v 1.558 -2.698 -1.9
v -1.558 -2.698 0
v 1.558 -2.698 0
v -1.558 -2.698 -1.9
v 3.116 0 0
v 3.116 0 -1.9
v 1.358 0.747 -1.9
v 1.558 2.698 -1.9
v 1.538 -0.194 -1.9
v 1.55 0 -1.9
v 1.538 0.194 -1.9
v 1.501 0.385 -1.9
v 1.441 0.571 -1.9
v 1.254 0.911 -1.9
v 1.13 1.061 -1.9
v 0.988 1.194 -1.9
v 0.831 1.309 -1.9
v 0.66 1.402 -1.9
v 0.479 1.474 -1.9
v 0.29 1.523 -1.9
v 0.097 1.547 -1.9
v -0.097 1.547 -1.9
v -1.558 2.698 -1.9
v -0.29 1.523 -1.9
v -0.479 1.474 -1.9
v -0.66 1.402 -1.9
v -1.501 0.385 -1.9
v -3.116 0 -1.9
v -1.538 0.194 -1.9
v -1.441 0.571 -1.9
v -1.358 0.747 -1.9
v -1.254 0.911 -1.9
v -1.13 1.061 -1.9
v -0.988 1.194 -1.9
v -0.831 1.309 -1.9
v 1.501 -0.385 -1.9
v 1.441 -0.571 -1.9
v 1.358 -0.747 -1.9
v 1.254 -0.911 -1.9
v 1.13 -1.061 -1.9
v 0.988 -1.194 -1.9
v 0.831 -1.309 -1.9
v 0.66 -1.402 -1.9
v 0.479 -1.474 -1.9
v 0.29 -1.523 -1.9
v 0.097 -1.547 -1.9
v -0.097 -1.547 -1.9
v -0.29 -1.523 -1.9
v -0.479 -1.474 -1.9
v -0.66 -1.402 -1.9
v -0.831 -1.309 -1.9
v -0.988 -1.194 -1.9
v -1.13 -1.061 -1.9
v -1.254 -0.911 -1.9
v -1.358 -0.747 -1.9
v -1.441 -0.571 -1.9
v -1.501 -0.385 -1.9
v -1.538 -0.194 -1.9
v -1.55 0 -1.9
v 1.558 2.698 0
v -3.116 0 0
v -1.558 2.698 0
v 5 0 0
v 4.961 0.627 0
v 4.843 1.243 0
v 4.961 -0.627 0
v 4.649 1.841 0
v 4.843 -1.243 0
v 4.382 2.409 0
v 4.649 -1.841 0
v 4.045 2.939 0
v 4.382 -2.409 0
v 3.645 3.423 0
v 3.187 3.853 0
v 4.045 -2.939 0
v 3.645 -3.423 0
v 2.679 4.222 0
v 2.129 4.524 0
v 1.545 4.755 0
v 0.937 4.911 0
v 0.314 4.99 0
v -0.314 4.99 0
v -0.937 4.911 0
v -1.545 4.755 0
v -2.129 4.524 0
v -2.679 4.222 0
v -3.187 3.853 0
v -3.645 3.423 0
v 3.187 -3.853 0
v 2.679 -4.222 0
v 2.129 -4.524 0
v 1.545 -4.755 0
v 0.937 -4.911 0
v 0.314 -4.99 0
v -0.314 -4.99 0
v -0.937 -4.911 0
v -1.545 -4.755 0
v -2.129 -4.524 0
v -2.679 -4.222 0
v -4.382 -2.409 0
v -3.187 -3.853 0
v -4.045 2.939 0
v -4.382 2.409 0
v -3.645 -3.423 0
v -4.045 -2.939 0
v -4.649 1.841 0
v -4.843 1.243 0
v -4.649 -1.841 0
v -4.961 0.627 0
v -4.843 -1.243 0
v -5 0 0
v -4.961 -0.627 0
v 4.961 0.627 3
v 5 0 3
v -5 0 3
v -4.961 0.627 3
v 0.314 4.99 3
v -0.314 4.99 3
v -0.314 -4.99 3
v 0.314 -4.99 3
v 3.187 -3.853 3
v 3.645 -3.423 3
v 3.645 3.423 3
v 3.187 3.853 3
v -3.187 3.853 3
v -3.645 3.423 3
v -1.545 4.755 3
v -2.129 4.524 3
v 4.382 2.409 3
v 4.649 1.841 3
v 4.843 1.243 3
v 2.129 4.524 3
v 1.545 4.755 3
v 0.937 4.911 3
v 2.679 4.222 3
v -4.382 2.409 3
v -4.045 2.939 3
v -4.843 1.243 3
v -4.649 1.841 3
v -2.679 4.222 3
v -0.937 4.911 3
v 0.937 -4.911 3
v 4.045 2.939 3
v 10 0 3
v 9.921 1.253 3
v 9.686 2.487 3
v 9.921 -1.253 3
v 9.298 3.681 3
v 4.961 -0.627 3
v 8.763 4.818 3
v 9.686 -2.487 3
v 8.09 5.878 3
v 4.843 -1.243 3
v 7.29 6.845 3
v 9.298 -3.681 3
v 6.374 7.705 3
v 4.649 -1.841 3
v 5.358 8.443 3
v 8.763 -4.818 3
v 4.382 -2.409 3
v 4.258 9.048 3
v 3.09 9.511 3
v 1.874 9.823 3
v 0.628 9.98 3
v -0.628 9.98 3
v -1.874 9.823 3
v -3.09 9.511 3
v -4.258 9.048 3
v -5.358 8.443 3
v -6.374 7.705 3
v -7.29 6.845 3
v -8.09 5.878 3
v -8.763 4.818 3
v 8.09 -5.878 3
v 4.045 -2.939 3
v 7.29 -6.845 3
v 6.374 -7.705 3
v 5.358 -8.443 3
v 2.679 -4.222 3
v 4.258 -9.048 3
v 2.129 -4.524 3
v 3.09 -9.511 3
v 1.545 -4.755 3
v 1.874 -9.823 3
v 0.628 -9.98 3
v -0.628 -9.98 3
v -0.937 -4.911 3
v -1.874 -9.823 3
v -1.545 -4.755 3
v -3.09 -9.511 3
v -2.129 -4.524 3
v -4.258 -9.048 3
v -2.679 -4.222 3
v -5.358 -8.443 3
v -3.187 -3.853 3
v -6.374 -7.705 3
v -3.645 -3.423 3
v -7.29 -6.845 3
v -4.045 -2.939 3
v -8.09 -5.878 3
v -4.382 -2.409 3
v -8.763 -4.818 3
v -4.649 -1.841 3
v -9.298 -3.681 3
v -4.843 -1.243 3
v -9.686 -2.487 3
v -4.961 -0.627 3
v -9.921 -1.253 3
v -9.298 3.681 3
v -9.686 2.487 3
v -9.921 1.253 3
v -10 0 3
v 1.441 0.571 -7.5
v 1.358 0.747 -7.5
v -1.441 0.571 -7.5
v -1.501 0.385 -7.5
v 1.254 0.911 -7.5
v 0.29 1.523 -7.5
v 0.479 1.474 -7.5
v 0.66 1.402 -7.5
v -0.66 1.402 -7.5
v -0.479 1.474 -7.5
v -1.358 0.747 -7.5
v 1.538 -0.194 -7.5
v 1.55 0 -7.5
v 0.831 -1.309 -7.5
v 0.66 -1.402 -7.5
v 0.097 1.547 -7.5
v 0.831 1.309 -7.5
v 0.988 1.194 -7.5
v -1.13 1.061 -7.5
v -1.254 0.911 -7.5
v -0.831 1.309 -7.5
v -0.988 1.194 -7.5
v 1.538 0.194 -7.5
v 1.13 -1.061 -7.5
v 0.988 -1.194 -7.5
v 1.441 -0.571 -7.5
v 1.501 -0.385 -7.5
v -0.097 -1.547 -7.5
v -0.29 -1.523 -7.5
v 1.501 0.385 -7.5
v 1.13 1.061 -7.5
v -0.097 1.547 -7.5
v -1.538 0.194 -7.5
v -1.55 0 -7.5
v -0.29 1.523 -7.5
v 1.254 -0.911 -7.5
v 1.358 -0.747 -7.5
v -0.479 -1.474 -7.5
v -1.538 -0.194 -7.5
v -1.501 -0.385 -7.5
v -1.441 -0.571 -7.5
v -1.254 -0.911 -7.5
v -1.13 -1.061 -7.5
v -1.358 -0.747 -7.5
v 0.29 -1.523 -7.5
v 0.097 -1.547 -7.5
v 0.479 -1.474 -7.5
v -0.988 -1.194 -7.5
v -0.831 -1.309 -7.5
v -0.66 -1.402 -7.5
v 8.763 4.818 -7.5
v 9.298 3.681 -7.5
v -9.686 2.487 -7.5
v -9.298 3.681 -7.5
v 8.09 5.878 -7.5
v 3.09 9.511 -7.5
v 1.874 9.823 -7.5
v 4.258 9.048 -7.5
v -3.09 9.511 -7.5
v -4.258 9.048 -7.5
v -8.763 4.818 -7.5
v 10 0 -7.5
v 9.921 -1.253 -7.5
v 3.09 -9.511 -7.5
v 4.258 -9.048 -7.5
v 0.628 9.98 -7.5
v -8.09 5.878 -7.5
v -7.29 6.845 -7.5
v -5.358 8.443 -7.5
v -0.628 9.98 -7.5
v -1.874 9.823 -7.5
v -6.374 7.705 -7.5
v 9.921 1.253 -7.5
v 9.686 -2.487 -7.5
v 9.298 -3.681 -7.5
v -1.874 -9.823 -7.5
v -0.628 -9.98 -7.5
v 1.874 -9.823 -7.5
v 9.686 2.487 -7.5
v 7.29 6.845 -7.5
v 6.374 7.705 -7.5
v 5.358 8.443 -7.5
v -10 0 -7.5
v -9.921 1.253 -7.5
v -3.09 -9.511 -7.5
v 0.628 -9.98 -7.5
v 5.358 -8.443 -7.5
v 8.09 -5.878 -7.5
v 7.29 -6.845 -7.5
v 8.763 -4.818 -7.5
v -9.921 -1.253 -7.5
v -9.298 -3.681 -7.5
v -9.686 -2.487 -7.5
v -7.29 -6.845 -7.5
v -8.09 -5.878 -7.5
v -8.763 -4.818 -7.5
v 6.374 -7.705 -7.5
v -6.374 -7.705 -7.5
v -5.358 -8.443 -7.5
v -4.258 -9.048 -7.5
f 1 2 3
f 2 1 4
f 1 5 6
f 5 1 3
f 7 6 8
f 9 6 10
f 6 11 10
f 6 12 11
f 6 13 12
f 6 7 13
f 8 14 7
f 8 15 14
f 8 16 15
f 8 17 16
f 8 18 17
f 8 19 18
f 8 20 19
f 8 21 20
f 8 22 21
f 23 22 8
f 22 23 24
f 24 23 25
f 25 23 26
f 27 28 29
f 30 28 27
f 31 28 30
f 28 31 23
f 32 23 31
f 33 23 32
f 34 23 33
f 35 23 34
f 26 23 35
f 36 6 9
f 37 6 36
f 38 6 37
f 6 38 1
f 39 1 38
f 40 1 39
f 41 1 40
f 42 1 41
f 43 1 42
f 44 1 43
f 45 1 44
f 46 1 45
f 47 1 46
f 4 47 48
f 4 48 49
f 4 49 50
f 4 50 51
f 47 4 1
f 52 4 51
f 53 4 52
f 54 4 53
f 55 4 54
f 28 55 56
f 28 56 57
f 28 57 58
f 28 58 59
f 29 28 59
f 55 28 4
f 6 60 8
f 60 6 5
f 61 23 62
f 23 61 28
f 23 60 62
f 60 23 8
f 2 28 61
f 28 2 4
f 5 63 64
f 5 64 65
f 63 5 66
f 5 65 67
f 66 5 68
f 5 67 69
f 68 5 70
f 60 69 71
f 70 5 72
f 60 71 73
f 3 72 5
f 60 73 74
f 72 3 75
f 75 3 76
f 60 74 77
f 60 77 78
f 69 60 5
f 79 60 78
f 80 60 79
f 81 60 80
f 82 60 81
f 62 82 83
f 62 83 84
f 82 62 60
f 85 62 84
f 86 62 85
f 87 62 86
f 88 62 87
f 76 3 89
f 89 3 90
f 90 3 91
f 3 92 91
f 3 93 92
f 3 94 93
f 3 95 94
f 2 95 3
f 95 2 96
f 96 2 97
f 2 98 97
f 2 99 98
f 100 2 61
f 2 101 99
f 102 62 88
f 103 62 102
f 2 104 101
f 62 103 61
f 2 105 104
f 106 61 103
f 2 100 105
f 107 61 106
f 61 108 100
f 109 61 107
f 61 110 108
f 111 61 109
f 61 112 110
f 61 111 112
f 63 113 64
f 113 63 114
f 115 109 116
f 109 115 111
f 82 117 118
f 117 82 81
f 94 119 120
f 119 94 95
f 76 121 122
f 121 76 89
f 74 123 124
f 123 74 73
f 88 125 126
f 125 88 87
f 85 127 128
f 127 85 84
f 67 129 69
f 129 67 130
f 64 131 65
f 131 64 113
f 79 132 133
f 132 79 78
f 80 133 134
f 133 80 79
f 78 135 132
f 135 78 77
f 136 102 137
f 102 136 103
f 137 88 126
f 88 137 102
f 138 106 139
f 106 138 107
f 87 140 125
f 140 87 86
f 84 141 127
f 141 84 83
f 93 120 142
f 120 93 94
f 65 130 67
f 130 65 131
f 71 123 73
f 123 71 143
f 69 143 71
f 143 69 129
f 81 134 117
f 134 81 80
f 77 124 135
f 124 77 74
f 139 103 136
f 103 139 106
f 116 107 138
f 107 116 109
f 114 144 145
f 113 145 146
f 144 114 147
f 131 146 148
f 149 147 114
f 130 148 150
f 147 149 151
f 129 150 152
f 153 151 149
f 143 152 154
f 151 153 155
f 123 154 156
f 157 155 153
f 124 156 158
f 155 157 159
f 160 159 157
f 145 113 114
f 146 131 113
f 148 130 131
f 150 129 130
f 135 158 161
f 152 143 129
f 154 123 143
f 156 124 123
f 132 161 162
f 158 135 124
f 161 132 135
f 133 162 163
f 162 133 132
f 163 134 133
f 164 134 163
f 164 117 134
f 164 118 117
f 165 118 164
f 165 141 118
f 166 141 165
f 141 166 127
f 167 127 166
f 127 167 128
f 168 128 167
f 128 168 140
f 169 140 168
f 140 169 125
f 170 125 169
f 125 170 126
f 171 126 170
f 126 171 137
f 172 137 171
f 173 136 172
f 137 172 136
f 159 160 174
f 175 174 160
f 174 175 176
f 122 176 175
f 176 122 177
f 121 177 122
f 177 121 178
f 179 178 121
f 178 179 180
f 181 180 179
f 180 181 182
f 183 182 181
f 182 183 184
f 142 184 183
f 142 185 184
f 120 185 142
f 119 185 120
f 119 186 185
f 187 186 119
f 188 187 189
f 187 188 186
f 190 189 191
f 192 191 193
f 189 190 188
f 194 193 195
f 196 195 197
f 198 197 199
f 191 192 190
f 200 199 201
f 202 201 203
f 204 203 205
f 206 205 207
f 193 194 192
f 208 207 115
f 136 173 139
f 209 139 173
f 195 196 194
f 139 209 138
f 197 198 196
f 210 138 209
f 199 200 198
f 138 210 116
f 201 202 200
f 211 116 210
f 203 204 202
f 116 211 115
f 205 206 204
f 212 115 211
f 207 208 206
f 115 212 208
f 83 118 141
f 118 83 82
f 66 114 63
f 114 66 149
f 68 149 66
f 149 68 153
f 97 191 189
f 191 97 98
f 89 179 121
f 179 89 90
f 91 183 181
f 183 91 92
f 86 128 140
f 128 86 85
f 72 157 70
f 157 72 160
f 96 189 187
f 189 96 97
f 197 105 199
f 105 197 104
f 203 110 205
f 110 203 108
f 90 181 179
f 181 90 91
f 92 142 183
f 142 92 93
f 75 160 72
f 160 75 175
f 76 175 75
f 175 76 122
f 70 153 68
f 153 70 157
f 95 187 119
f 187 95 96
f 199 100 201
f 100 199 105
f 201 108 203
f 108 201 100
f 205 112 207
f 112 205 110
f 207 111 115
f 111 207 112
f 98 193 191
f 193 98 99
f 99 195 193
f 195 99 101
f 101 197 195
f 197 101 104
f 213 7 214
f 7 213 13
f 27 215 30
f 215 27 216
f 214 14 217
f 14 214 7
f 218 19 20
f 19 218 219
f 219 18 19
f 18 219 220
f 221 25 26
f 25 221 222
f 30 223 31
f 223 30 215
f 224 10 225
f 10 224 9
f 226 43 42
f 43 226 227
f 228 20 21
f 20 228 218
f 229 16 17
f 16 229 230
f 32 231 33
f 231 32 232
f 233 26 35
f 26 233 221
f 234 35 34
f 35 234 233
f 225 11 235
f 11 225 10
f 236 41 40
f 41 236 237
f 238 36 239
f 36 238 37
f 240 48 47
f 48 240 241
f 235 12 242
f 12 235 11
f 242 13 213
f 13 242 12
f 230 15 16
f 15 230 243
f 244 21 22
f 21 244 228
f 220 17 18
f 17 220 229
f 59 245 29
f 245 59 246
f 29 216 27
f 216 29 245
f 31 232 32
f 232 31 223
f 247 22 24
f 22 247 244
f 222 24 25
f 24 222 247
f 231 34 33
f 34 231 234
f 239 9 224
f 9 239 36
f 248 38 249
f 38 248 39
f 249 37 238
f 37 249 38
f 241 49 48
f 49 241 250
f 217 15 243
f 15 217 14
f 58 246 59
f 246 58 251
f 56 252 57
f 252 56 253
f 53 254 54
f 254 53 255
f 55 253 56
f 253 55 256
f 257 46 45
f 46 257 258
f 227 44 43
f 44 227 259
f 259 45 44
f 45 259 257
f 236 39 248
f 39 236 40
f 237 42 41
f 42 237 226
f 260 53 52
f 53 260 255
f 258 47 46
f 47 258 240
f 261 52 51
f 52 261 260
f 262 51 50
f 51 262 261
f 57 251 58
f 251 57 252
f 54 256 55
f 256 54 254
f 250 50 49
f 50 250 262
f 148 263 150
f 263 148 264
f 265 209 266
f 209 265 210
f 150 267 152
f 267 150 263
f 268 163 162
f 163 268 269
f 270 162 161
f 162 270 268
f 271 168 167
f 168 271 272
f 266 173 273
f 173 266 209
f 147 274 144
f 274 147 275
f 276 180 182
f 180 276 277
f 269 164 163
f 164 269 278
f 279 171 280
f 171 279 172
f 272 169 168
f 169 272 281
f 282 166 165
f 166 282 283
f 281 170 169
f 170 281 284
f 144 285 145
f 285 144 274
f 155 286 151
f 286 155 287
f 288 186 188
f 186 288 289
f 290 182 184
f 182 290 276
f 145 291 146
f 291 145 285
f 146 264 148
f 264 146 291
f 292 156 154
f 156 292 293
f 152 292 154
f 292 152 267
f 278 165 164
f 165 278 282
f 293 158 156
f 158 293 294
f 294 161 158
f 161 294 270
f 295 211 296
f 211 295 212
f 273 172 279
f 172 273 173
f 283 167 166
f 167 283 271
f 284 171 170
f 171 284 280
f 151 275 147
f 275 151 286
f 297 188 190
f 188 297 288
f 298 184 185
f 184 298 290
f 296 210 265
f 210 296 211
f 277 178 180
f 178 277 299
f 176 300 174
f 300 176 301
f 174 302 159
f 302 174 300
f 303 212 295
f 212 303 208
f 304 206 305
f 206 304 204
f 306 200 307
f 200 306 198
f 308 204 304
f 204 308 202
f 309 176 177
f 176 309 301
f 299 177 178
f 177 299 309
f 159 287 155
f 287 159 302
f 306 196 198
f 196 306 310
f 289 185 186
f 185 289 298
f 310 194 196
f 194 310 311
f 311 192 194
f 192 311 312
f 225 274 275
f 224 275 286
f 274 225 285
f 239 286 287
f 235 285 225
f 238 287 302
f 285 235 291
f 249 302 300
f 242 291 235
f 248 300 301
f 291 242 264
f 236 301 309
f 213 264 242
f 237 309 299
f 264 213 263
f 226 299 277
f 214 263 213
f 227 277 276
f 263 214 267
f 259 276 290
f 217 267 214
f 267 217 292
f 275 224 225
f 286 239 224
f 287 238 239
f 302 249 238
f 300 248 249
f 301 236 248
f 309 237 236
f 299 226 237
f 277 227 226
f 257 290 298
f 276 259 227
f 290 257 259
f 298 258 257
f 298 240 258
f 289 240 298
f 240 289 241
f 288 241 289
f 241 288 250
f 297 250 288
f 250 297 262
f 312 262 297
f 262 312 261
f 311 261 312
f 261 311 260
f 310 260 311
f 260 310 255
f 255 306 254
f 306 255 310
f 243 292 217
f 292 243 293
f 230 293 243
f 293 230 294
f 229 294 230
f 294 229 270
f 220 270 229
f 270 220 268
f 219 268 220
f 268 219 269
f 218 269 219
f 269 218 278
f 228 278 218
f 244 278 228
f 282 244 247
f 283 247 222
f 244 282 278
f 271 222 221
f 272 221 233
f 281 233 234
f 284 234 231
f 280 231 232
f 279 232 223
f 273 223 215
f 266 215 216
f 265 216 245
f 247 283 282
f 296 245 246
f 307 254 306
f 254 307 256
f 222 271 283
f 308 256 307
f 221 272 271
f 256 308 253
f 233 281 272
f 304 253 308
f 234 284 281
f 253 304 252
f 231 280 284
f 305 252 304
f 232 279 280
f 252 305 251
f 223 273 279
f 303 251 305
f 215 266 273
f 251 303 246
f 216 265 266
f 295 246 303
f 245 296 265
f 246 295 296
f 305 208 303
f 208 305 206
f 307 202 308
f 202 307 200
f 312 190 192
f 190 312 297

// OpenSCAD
$fn = 50;


difference() {
	union() {
		translate(v = [0, 0, -7.5000000000]) {
			cylinder(h = 10.5000000000, r = 10.0000000000);
		}
	}
	union() {
		translate(v = [0, 0, 0]) {
			rotate(a = [0, 0, 0]) {
				difference() {
					union() {
						translate(v = [0, 0, -1.9000000000]) {
							linear_extrude(height = 1.9000000000) {
								polygon(points = [[3.1158000000, 0.0000000000], [1.5579000000, 2.6983619531], [-1.5579000000, 2.6983619531], [-3.1158000000, 0.0000000000], [-1.5579000000, -2.6983619531], [1.5579000000, -2.6983619531]]);
							}
						}
					}
					union();
				}
			}
		}
		#cylinder(h = 3, r = 5.0000000000);
		#translate(v = [0, 0, -100.0000000000]) {
			cylinder(h = 200, r = 1.5500000000);
		}
	}
}
